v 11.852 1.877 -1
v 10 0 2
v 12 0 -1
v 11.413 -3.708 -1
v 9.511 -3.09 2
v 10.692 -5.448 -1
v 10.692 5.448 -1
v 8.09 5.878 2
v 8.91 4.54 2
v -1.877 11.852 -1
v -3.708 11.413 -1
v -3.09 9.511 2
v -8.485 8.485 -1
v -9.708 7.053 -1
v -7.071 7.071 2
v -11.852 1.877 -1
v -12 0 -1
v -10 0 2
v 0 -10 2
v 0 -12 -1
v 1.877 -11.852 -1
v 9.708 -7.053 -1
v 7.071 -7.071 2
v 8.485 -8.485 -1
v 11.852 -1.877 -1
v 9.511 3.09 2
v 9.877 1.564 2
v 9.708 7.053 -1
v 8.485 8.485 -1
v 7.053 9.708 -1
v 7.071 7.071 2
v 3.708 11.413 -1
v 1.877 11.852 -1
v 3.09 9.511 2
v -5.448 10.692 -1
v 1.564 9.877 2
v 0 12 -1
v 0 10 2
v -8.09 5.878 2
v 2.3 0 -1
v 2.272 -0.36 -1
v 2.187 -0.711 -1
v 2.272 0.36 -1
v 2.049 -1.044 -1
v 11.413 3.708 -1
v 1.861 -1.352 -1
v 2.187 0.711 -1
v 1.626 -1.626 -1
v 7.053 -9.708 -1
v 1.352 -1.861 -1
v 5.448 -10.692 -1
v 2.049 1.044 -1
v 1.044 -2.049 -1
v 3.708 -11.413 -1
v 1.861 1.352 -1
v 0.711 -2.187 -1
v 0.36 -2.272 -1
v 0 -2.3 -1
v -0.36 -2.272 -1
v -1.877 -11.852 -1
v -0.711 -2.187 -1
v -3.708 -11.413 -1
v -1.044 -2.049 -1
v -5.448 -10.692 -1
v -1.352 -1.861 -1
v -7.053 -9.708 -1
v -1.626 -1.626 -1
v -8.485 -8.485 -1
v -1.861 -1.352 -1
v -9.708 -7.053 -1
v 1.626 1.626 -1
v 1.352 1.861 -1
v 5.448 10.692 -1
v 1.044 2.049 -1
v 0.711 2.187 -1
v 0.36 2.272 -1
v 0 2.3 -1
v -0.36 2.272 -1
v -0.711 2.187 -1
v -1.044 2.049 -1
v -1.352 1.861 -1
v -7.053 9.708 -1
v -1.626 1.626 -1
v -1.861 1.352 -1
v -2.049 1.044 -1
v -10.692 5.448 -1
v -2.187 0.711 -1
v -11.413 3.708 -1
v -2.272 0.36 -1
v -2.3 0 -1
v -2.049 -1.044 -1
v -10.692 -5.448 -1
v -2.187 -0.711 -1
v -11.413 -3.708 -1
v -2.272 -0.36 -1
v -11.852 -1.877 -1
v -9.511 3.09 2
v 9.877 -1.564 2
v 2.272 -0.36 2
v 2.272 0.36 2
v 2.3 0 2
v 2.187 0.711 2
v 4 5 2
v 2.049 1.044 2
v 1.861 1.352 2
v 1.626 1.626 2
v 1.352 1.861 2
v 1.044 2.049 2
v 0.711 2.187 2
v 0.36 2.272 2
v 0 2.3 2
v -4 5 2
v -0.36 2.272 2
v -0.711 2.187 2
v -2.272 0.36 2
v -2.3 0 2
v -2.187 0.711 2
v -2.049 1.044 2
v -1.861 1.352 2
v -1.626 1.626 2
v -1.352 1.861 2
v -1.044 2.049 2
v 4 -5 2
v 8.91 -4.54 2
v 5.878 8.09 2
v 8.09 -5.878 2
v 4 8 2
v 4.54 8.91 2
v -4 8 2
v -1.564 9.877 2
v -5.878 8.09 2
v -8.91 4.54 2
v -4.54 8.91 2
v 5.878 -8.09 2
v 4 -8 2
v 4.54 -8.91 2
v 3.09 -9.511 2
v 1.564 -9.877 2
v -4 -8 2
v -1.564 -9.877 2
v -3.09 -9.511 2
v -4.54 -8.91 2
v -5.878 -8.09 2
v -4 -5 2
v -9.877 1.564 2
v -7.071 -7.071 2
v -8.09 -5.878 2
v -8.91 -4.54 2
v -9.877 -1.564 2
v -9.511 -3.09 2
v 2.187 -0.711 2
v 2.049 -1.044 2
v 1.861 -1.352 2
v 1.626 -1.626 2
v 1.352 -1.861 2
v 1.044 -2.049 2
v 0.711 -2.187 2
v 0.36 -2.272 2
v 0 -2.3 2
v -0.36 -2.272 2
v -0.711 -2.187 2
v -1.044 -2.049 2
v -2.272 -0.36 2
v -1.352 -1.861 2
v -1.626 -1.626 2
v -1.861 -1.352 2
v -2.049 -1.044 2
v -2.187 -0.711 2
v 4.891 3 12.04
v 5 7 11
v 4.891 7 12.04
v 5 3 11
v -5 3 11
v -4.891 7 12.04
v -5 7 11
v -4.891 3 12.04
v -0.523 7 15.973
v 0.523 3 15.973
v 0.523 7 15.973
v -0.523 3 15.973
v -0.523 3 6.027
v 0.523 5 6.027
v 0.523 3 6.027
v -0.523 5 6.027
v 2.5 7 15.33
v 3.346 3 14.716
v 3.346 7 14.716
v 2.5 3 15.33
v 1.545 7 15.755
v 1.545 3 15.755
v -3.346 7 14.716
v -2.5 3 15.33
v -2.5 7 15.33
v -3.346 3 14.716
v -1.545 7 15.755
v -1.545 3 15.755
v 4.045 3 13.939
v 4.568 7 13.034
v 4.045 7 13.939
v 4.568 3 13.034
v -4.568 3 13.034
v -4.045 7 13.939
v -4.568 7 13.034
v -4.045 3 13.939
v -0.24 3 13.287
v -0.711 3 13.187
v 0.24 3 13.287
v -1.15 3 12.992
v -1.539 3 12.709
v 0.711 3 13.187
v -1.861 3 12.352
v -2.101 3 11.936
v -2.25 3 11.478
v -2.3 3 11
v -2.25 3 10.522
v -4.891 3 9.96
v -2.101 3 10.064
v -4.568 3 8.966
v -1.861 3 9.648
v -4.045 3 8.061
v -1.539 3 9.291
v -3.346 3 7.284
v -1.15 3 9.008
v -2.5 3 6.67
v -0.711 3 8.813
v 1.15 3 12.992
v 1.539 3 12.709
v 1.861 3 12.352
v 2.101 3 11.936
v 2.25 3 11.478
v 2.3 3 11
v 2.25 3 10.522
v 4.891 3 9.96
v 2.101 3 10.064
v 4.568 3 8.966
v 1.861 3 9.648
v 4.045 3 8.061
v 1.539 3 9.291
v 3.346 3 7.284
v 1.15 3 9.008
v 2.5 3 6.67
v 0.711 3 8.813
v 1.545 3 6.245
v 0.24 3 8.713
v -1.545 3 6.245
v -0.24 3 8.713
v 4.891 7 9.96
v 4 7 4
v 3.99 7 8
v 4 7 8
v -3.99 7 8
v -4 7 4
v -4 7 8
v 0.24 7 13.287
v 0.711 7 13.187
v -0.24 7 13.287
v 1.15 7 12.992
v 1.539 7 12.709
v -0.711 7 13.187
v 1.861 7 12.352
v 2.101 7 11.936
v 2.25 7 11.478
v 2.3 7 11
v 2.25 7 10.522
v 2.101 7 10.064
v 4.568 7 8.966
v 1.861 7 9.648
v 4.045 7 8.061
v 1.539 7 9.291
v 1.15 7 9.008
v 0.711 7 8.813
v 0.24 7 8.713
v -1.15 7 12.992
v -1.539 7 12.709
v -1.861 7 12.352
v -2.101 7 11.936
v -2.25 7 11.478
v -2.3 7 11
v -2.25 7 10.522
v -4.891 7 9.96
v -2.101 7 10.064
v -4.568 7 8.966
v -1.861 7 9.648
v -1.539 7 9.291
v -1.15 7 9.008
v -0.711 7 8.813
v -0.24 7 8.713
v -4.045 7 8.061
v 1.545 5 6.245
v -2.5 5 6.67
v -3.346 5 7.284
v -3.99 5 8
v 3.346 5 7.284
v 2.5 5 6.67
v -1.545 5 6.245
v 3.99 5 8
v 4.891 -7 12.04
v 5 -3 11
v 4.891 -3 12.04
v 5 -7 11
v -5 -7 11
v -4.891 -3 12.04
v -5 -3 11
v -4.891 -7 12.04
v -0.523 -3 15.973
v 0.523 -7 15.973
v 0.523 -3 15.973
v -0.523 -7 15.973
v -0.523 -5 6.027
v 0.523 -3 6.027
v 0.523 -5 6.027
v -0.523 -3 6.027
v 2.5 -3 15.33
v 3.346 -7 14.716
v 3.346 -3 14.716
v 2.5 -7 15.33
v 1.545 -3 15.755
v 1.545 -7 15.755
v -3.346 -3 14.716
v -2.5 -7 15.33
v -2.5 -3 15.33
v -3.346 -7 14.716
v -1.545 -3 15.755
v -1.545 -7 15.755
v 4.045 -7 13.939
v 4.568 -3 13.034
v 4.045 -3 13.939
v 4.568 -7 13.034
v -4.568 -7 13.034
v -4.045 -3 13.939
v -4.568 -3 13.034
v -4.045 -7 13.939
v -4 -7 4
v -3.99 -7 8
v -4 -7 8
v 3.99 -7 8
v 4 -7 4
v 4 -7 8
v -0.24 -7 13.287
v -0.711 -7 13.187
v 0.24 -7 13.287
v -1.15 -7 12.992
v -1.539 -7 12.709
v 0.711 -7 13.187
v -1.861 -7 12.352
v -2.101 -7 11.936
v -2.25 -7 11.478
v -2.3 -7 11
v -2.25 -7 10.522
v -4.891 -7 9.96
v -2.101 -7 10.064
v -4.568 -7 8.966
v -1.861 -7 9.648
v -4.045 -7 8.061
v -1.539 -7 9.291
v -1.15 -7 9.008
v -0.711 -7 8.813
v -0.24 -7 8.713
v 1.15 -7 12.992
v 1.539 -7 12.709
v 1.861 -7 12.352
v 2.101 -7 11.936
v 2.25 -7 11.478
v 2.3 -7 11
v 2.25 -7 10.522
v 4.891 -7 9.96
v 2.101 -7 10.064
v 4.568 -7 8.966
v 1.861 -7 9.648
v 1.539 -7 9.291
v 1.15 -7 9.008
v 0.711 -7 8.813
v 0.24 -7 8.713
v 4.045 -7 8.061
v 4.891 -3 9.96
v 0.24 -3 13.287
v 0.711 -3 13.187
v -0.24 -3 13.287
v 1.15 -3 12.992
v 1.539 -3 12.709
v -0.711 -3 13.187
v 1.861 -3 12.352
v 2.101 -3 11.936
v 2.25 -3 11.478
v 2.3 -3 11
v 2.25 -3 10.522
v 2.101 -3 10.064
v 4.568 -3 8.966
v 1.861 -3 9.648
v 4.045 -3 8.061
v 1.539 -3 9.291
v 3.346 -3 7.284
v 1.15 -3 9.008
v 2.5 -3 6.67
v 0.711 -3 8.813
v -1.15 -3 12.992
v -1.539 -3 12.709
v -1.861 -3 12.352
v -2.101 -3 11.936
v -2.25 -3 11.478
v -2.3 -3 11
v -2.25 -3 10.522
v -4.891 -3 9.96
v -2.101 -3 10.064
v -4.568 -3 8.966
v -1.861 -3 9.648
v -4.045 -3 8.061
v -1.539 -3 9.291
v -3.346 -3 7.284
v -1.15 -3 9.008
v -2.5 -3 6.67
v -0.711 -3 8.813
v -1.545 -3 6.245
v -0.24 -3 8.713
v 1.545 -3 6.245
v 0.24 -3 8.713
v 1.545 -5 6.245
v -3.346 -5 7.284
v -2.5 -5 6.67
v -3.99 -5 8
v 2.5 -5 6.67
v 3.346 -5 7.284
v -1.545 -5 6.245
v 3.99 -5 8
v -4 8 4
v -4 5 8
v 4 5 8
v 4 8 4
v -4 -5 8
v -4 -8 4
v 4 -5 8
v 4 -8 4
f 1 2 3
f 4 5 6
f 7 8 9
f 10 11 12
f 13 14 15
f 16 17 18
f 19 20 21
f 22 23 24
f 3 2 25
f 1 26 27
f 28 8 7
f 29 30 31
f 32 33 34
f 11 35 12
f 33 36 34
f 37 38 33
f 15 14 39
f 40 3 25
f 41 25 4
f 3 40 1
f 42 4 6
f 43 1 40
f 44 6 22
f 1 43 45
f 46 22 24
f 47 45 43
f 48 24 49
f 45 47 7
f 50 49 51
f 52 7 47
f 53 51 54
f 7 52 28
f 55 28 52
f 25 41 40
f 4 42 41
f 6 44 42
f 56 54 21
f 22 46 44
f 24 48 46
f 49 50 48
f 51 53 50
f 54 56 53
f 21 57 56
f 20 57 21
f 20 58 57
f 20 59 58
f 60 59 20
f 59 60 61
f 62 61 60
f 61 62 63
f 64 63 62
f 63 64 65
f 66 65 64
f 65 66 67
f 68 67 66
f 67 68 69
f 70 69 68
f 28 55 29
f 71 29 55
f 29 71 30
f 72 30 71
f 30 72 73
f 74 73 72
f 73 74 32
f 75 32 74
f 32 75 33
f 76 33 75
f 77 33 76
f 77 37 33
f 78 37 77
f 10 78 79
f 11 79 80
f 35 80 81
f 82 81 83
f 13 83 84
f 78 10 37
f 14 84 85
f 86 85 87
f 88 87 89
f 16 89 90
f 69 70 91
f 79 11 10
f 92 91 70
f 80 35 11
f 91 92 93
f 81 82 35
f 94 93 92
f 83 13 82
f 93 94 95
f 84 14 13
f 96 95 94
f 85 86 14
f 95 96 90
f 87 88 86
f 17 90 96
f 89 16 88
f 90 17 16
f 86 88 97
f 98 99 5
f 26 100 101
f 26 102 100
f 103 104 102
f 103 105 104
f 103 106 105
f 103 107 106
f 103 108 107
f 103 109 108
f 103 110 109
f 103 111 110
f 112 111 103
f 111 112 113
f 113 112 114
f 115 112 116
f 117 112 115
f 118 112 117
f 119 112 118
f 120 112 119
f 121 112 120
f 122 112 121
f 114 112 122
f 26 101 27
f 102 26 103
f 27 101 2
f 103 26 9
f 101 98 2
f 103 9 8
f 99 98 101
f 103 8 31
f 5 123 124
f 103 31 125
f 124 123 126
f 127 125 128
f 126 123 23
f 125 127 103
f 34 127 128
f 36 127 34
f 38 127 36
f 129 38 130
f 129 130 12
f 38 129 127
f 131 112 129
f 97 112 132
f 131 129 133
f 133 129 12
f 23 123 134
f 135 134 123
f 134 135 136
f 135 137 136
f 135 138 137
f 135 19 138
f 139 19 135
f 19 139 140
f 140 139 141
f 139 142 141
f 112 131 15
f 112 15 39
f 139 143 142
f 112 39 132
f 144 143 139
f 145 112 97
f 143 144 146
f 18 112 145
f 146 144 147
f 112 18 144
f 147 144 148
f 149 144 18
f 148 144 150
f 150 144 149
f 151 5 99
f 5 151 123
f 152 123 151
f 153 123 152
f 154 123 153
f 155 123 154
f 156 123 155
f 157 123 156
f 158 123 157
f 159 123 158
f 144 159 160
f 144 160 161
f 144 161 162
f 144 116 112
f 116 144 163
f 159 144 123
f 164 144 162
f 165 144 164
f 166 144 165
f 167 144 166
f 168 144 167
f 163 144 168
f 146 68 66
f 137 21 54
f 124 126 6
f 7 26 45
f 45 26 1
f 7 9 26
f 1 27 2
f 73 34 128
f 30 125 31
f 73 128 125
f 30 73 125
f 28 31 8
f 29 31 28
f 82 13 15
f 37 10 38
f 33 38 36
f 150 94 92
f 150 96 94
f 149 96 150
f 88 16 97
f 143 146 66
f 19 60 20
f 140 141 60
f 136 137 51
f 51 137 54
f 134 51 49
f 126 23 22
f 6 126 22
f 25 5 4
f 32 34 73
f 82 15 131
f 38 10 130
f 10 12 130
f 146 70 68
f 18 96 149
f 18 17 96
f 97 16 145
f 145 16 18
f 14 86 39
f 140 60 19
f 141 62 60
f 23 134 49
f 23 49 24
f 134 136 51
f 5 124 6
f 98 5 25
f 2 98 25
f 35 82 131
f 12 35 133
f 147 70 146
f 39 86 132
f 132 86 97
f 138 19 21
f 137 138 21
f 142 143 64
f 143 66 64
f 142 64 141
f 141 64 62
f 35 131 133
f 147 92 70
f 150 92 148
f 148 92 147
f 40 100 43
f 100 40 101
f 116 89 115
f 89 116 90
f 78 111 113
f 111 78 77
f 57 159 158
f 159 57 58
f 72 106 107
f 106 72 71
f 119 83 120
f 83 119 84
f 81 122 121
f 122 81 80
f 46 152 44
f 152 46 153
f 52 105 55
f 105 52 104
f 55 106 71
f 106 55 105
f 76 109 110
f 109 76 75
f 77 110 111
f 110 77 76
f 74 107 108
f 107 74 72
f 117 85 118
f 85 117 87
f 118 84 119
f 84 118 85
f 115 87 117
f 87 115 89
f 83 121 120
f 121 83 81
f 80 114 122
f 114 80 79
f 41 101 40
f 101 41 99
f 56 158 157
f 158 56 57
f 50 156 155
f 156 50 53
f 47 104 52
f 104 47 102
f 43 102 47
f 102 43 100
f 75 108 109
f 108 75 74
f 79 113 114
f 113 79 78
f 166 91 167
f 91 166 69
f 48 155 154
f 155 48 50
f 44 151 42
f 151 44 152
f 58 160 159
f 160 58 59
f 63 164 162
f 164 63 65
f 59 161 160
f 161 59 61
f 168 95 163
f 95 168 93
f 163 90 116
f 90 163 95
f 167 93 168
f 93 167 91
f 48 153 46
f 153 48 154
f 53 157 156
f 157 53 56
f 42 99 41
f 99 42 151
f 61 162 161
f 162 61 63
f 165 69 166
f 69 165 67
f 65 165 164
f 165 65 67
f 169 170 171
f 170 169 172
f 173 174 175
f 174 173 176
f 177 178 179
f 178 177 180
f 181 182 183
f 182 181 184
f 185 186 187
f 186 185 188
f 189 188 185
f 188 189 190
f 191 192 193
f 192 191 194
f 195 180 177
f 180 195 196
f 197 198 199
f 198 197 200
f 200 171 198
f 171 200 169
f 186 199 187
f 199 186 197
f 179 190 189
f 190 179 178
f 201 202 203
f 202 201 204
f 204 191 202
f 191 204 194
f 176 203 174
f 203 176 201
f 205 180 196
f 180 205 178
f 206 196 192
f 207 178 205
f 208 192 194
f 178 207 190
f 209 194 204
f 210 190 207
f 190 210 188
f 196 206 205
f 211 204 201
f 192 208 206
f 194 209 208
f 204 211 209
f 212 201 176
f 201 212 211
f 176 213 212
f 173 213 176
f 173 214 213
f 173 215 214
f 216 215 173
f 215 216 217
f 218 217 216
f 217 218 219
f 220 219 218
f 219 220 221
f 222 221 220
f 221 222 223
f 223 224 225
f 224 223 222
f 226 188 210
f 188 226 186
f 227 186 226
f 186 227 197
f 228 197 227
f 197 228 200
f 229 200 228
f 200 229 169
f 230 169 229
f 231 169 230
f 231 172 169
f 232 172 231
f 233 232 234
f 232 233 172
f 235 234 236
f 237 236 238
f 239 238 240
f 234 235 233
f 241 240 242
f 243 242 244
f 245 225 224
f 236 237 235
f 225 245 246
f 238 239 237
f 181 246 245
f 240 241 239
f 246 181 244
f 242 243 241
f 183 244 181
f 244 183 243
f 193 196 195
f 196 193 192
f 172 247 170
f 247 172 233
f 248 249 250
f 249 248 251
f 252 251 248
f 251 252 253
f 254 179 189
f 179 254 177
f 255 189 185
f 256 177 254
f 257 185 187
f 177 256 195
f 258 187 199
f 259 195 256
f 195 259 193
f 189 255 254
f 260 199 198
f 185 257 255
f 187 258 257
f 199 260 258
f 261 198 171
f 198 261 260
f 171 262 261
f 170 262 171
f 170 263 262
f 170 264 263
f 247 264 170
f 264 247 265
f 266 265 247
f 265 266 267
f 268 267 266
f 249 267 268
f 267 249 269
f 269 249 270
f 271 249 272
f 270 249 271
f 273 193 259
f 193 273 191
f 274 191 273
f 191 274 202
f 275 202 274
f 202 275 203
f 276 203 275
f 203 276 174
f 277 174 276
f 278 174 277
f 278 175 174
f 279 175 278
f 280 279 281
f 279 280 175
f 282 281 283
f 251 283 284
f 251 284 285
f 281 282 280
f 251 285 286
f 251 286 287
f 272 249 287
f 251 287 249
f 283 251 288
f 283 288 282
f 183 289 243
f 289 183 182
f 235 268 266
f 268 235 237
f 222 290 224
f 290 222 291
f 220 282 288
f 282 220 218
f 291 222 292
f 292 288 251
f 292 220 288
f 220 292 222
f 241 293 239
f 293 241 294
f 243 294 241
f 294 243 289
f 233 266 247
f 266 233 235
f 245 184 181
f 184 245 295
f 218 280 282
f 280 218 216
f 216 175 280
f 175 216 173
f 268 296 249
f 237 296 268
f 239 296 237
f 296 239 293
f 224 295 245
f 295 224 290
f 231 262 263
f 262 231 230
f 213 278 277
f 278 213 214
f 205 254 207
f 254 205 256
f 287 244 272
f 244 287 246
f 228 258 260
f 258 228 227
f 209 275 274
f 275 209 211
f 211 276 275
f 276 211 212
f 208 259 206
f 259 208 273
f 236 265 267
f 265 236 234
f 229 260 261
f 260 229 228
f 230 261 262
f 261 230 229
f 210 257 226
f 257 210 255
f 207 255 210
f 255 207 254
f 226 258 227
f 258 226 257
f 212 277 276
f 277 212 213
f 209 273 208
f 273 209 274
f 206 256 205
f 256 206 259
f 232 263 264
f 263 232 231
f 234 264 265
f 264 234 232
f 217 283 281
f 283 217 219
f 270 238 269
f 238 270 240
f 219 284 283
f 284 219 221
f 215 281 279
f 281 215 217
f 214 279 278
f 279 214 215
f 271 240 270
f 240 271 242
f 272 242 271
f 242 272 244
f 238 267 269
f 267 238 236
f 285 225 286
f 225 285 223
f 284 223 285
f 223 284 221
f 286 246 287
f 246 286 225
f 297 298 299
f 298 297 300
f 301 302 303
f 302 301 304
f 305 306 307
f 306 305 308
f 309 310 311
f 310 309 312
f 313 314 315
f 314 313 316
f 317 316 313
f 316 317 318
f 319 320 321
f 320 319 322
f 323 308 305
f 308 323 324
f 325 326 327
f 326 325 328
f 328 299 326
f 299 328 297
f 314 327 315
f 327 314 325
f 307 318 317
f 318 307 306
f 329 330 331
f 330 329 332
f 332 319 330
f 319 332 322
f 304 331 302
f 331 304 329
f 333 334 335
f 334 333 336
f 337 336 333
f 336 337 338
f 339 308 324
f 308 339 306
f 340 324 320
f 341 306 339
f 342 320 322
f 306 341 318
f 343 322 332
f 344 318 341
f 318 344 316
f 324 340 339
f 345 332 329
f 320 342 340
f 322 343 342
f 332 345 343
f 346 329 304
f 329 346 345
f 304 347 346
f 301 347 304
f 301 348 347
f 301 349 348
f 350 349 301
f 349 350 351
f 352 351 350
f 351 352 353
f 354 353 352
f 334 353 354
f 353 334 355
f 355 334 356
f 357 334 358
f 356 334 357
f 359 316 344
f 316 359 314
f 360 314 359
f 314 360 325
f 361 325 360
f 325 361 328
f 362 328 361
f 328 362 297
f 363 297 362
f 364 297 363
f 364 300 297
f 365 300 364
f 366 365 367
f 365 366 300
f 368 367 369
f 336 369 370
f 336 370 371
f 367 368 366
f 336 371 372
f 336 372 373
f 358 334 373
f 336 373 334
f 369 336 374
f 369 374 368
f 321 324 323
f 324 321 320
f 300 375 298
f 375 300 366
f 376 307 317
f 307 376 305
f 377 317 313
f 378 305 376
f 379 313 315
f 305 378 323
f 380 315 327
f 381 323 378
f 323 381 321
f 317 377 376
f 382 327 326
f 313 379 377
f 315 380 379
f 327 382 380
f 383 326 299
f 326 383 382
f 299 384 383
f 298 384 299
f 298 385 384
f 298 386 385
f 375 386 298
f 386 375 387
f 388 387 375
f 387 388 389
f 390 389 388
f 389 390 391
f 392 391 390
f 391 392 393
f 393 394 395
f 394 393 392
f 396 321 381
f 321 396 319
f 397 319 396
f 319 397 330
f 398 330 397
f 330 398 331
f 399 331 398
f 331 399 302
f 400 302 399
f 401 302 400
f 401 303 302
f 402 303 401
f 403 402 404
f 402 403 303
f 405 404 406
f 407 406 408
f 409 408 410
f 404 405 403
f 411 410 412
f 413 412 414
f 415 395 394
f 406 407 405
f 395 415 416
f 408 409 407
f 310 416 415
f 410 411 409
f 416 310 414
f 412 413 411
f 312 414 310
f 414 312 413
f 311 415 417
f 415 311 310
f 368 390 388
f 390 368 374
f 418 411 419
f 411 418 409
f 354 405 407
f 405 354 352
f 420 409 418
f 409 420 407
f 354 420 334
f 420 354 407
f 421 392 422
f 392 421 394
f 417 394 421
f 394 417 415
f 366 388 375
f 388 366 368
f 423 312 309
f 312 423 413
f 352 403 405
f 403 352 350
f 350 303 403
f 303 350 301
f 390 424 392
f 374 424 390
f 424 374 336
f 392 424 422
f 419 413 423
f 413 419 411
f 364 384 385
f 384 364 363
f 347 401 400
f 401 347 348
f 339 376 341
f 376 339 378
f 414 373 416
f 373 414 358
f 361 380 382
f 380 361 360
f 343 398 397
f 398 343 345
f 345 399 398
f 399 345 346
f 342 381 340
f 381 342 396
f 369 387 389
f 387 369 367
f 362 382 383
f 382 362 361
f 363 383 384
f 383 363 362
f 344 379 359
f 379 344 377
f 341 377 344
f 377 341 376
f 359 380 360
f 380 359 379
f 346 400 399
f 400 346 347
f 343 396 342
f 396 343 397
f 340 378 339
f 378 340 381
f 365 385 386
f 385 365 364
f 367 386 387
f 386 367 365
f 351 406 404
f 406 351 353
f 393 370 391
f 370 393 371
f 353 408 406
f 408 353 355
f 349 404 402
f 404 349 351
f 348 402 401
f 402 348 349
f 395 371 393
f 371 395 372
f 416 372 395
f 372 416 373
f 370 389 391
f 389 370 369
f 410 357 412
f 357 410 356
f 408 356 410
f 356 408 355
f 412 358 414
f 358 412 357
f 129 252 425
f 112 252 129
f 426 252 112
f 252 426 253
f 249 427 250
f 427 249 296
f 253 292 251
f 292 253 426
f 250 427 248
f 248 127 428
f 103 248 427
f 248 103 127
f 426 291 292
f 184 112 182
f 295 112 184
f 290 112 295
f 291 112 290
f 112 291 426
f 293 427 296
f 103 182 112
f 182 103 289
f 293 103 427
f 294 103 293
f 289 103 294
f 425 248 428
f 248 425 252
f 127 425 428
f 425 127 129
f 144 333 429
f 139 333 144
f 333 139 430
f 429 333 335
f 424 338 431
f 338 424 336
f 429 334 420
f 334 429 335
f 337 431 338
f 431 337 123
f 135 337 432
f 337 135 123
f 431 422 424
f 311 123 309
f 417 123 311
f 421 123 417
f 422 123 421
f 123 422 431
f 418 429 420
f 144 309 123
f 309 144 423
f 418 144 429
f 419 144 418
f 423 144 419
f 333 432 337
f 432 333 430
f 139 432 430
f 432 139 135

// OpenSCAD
//bottom
translate([0,0,-1])
rotate([0,0,0])
difference() {
	cylinder(3,12,10, $fn=40);
	cylinder(4,2.3,2.3, $fn=40);
}
//right
translate([0,7,11])
rotate([90,0,0])
difference() {
	cylinder(4,5,5, $fn=30);
	cylinder(4,2.3,2.3, $fn=30);
}
translate([-4,5,0])
	scale([1,0.25,1])
		cube(8);
translate([-4,6,0])
	scale([1,0.25,0.5])
		cube(8);
//left
translate([0,-3,11])
rotate([90,0,0])
difference() {
	cylinder(4,5,5, $fn=30);
	cylinder(4,2.3,2.3, $fn=30);
}

translate([-4,-7,0])
scale([1,0.25,1])
cube(8);

translate([-4,-8,0])
scale([1,0.25,0.5])
cube(8);
